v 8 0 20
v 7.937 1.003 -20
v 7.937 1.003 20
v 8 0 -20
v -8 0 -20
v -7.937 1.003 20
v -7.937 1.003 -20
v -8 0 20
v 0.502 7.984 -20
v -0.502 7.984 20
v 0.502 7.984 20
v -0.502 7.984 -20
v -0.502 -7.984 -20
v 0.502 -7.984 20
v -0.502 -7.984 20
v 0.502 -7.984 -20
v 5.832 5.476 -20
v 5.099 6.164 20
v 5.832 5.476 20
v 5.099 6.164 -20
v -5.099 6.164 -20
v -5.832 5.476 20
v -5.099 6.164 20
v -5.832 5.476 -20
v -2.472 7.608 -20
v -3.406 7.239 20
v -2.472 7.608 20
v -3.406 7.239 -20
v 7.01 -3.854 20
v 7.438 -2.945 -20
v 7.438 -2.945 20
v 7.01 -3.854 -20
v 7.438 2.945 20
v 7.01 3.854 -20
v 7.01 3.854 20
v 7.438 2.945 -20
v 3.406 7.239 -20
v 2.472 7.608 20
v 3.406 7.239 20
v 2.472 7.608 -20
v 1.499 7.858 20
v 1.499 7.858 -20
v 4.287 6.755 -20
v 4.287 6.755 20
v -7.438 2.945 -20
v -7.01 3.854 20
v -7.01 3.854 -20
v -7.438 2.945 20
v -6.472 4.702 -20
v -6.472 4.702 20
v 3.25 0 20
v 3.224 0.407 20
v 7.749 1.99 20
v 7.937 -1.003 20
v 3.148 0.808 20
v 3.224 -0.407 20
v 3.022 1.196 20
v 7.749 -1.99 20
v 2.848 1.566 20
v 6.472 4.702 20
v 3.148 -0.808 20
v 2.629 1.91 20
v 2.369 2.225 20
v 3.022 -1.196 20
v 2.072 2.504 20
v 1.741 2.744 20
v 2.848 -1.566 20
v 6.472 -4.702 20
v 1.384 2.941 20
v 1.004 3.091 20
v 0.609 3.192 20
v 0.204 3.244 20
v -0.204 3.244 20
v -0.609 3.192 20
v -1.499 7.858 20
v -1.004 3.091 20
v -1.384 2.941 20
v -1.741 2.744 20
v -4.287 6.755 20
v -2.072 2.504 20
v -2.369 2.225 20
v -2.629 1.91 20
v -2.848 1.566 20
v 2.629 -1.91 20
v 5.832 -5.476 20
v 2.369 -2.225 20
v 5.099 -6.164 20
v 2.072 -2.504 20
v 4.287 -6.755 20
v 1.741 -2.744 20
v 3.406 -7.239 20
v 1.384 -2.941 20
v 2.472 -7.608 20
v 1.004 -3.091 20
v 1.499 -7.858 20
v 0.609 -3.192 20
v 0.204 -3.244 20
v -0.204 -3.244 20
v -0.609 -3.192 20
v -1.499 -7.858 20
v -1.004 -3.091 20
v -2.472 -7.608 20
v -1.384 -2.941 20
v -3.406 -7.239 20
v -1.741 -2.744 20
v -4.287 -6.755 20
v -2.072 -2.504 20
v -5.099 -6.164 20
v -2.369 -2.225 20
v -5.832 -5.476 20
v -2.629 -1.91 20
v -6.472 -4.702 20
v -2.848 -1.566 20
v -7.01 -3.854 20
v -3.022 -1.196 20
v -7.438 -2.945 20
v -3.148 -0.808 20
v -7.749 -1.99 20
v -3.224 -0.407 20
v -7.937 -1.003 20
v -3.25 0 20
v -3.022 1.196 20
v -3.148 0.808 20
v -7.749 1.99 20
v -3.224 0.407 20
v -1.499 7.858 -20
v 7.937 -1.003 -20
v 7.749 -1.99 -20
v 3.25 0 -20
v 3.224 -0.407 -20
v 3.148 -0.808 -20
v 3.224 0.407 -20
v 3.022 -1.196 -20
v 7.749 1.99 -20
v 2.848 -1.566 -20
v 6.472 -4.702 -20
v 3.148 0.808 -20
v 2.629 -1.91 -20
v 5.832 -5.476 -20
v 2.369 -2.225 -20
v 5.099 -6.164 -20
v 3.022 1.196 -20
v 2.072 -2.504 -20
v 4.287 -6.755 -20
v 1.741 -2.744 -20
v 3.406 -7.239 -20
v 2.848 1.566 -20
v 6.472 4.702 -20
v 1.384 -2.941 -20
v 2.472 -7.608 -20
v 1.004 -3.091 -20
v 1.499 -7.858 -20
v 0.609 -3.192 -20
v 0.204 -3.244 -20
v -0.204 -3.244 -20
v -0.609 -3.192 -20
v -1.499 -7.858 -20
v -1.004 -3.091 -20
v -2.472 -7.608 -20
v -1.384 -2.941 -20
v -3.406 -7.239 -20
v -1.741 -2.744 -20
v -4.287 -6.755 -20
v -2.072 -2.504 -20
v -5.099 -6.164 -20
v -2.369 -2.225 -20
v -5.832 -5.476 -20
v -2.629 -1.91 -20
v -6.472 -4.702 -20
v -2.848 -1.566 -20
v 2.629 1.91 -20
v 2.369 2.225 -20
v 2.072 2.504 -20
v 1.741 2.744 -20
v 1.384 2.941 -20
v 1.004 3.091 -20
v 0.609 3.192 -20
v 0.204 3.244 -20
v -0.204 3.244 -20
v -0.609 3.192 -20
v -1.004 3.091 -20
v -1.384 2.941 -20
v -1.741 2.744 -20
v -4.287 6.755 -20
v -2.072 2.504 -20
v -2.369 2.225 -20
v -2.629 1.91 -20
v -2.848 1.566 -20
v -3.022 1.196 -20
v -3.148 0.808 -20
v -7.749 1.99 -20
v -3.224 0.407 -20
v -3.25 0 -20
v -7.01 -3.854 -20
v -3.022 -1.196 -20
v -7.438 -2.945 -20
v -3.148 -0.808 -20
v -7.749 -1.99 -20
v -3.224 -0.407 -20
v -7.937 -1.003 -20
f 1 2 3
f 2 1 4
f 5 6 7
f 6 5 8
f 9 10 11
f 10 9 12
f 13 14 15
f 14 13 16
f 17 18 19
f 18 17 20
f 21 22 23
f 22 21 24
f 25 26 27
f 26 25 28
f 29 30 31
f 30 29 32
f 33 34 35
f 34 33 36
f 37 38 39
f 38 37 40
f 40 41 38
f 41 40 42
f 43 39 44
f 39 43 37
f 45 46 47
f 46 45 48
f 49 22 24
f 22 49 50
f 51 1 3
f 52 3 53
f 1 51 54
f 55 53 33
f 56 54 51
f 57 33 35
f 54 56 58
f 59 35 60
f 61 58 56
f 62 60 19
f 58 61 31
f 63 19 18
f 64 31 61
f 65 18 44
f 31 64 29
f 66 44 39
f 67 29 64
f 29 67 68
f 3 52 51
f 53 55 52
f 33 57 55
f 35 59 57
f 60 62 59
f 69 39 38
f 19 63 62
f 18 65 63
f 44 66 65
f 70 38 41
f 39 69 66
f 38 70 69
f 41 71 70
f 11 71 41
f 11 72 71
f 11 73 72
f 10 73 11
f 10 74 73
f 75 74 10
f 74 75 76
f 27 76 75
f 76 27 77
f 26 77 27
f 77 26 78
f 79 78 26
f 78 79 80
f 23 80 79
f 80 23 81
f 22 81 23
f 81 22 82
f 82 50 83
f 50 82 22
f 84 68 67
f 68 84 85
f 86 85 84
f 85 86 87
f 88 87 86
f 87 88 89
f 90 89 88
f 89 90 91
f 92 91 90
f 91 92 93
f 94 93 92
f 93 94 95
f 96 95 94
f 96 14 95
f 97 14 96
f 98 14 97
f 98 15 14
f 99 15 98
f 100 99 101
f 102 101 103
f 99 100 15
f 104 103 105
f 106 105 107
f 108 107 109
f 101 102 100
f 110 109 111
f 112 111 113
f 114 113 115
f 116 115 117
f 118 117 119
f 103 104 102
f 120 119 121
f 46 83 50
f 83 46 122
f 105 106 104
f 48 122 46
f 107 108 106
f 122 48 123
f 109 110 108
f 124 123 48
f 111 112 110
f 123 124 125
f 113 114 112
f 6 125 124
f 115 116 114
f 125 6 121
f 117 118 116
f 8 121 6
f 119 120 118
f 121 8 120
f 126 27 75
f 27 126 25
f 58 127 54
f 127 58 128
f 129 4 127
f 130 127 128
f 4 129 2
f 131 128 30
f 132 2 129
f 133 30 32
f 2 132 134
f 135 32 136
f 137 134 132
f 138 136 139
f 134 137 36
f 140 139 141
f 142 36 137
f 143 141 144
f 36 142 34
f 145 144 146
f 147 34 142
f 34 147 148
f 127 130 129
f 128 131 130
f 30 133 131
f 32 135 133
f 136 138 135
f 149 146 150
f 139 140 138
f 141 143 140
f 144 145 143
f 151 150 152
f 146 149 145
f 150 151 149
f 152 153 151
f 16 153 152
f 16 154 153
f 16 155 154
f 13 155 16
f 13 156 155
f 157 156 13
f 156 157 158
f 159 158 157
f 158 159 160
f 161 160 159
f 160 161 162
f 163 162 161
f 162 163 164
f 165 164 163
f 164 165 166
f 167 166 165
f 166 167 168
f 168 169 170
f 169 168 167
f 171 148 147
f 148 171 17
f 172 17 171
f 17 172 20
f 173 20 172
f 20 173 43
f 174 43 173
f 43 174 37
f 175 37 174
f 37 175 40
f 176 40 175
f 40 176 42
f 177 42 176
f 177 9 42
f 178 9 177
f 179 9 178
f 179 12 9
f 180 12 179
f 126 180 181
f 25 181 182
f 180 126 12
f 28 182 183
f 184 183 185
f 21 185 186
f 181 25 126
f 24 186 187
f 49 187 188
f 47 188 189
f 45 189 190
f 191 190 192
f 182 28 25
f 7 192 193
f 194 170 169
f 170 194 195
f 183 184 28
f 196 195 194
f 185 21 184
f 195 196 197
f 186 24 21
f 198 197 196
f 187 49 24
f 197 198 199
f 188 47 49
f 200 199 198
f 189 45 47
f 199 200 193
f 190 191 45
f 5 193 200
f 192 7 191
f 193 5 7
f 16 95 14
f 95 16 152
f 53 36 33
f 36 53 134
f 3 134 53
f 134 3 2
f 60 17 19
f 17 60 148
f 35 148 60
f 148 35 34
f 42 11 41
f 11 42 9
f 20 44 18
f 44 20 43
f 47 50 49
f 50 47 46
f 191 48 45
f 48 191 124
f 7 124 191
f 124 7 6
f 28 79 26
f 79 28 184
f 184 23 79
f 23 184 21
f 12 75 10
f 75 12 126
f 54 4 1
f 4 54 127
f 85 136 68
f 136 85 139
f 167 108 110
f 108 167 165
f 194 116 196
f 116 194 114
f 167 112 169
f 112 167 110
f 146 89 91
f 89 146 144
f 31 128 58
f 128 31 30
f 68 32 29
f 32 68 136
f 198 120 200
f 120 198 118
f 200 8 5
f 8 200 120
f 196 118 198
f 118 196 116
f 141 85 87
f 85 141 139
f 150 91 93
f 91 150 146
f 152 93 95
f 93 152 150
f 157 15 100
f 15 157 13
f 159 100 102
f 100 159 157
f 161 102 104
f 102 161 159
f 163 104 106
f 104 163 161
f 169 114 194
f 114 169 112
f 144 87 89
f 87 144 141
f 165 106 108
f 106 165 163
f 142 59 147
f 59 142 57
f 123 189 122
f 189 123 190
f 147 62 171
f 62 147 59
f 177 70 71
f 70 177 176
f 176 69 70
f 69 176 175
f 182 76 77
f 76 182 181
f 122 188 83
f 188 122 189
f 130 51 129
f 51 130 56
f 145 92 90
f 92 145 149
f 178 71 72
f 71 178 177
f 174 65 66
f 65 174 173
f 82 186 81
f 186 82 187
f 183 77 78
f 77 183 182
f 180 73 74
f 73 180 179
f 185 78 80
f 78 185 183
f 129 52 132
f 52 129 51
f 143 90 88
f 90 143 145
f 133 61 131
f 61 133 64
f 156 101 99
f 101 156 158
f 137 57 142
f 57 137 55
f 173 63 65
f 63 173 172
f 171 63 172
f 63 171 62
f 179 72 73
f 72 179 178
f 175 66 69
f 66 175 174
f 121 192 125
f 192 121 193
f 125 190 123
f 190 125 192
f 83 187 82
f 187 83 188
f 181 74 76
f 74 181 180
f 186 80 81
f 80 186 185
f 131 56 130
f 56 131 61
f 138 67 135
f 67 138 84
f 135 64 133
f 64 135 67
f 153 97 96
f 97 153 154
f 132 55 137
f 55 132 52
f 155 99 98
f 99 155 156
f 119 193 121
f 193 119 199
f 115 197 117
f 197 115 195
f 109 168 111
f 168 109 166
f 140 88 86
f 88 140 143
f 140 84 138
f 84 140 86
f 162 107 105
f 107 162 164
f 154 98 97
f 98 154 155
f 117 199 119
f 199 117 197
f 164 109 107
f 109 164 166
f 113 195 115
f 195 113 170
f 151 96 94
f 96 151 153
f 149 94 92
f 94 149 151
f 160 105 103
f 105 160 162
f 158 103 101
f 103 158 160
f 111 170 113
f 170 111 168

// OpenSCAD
$fn = 50;


difference() {
	union() {
		translate(v = [0, 0, -20.0000000000]) {
			cylinder(h = 40, r = 8.0000000000);
		}
	}
	union() {
		translate(v = [0, 0, -100.0000000000]) {
			cylinder(h = 200, r = 3.2500000000);
		}
	}
}
